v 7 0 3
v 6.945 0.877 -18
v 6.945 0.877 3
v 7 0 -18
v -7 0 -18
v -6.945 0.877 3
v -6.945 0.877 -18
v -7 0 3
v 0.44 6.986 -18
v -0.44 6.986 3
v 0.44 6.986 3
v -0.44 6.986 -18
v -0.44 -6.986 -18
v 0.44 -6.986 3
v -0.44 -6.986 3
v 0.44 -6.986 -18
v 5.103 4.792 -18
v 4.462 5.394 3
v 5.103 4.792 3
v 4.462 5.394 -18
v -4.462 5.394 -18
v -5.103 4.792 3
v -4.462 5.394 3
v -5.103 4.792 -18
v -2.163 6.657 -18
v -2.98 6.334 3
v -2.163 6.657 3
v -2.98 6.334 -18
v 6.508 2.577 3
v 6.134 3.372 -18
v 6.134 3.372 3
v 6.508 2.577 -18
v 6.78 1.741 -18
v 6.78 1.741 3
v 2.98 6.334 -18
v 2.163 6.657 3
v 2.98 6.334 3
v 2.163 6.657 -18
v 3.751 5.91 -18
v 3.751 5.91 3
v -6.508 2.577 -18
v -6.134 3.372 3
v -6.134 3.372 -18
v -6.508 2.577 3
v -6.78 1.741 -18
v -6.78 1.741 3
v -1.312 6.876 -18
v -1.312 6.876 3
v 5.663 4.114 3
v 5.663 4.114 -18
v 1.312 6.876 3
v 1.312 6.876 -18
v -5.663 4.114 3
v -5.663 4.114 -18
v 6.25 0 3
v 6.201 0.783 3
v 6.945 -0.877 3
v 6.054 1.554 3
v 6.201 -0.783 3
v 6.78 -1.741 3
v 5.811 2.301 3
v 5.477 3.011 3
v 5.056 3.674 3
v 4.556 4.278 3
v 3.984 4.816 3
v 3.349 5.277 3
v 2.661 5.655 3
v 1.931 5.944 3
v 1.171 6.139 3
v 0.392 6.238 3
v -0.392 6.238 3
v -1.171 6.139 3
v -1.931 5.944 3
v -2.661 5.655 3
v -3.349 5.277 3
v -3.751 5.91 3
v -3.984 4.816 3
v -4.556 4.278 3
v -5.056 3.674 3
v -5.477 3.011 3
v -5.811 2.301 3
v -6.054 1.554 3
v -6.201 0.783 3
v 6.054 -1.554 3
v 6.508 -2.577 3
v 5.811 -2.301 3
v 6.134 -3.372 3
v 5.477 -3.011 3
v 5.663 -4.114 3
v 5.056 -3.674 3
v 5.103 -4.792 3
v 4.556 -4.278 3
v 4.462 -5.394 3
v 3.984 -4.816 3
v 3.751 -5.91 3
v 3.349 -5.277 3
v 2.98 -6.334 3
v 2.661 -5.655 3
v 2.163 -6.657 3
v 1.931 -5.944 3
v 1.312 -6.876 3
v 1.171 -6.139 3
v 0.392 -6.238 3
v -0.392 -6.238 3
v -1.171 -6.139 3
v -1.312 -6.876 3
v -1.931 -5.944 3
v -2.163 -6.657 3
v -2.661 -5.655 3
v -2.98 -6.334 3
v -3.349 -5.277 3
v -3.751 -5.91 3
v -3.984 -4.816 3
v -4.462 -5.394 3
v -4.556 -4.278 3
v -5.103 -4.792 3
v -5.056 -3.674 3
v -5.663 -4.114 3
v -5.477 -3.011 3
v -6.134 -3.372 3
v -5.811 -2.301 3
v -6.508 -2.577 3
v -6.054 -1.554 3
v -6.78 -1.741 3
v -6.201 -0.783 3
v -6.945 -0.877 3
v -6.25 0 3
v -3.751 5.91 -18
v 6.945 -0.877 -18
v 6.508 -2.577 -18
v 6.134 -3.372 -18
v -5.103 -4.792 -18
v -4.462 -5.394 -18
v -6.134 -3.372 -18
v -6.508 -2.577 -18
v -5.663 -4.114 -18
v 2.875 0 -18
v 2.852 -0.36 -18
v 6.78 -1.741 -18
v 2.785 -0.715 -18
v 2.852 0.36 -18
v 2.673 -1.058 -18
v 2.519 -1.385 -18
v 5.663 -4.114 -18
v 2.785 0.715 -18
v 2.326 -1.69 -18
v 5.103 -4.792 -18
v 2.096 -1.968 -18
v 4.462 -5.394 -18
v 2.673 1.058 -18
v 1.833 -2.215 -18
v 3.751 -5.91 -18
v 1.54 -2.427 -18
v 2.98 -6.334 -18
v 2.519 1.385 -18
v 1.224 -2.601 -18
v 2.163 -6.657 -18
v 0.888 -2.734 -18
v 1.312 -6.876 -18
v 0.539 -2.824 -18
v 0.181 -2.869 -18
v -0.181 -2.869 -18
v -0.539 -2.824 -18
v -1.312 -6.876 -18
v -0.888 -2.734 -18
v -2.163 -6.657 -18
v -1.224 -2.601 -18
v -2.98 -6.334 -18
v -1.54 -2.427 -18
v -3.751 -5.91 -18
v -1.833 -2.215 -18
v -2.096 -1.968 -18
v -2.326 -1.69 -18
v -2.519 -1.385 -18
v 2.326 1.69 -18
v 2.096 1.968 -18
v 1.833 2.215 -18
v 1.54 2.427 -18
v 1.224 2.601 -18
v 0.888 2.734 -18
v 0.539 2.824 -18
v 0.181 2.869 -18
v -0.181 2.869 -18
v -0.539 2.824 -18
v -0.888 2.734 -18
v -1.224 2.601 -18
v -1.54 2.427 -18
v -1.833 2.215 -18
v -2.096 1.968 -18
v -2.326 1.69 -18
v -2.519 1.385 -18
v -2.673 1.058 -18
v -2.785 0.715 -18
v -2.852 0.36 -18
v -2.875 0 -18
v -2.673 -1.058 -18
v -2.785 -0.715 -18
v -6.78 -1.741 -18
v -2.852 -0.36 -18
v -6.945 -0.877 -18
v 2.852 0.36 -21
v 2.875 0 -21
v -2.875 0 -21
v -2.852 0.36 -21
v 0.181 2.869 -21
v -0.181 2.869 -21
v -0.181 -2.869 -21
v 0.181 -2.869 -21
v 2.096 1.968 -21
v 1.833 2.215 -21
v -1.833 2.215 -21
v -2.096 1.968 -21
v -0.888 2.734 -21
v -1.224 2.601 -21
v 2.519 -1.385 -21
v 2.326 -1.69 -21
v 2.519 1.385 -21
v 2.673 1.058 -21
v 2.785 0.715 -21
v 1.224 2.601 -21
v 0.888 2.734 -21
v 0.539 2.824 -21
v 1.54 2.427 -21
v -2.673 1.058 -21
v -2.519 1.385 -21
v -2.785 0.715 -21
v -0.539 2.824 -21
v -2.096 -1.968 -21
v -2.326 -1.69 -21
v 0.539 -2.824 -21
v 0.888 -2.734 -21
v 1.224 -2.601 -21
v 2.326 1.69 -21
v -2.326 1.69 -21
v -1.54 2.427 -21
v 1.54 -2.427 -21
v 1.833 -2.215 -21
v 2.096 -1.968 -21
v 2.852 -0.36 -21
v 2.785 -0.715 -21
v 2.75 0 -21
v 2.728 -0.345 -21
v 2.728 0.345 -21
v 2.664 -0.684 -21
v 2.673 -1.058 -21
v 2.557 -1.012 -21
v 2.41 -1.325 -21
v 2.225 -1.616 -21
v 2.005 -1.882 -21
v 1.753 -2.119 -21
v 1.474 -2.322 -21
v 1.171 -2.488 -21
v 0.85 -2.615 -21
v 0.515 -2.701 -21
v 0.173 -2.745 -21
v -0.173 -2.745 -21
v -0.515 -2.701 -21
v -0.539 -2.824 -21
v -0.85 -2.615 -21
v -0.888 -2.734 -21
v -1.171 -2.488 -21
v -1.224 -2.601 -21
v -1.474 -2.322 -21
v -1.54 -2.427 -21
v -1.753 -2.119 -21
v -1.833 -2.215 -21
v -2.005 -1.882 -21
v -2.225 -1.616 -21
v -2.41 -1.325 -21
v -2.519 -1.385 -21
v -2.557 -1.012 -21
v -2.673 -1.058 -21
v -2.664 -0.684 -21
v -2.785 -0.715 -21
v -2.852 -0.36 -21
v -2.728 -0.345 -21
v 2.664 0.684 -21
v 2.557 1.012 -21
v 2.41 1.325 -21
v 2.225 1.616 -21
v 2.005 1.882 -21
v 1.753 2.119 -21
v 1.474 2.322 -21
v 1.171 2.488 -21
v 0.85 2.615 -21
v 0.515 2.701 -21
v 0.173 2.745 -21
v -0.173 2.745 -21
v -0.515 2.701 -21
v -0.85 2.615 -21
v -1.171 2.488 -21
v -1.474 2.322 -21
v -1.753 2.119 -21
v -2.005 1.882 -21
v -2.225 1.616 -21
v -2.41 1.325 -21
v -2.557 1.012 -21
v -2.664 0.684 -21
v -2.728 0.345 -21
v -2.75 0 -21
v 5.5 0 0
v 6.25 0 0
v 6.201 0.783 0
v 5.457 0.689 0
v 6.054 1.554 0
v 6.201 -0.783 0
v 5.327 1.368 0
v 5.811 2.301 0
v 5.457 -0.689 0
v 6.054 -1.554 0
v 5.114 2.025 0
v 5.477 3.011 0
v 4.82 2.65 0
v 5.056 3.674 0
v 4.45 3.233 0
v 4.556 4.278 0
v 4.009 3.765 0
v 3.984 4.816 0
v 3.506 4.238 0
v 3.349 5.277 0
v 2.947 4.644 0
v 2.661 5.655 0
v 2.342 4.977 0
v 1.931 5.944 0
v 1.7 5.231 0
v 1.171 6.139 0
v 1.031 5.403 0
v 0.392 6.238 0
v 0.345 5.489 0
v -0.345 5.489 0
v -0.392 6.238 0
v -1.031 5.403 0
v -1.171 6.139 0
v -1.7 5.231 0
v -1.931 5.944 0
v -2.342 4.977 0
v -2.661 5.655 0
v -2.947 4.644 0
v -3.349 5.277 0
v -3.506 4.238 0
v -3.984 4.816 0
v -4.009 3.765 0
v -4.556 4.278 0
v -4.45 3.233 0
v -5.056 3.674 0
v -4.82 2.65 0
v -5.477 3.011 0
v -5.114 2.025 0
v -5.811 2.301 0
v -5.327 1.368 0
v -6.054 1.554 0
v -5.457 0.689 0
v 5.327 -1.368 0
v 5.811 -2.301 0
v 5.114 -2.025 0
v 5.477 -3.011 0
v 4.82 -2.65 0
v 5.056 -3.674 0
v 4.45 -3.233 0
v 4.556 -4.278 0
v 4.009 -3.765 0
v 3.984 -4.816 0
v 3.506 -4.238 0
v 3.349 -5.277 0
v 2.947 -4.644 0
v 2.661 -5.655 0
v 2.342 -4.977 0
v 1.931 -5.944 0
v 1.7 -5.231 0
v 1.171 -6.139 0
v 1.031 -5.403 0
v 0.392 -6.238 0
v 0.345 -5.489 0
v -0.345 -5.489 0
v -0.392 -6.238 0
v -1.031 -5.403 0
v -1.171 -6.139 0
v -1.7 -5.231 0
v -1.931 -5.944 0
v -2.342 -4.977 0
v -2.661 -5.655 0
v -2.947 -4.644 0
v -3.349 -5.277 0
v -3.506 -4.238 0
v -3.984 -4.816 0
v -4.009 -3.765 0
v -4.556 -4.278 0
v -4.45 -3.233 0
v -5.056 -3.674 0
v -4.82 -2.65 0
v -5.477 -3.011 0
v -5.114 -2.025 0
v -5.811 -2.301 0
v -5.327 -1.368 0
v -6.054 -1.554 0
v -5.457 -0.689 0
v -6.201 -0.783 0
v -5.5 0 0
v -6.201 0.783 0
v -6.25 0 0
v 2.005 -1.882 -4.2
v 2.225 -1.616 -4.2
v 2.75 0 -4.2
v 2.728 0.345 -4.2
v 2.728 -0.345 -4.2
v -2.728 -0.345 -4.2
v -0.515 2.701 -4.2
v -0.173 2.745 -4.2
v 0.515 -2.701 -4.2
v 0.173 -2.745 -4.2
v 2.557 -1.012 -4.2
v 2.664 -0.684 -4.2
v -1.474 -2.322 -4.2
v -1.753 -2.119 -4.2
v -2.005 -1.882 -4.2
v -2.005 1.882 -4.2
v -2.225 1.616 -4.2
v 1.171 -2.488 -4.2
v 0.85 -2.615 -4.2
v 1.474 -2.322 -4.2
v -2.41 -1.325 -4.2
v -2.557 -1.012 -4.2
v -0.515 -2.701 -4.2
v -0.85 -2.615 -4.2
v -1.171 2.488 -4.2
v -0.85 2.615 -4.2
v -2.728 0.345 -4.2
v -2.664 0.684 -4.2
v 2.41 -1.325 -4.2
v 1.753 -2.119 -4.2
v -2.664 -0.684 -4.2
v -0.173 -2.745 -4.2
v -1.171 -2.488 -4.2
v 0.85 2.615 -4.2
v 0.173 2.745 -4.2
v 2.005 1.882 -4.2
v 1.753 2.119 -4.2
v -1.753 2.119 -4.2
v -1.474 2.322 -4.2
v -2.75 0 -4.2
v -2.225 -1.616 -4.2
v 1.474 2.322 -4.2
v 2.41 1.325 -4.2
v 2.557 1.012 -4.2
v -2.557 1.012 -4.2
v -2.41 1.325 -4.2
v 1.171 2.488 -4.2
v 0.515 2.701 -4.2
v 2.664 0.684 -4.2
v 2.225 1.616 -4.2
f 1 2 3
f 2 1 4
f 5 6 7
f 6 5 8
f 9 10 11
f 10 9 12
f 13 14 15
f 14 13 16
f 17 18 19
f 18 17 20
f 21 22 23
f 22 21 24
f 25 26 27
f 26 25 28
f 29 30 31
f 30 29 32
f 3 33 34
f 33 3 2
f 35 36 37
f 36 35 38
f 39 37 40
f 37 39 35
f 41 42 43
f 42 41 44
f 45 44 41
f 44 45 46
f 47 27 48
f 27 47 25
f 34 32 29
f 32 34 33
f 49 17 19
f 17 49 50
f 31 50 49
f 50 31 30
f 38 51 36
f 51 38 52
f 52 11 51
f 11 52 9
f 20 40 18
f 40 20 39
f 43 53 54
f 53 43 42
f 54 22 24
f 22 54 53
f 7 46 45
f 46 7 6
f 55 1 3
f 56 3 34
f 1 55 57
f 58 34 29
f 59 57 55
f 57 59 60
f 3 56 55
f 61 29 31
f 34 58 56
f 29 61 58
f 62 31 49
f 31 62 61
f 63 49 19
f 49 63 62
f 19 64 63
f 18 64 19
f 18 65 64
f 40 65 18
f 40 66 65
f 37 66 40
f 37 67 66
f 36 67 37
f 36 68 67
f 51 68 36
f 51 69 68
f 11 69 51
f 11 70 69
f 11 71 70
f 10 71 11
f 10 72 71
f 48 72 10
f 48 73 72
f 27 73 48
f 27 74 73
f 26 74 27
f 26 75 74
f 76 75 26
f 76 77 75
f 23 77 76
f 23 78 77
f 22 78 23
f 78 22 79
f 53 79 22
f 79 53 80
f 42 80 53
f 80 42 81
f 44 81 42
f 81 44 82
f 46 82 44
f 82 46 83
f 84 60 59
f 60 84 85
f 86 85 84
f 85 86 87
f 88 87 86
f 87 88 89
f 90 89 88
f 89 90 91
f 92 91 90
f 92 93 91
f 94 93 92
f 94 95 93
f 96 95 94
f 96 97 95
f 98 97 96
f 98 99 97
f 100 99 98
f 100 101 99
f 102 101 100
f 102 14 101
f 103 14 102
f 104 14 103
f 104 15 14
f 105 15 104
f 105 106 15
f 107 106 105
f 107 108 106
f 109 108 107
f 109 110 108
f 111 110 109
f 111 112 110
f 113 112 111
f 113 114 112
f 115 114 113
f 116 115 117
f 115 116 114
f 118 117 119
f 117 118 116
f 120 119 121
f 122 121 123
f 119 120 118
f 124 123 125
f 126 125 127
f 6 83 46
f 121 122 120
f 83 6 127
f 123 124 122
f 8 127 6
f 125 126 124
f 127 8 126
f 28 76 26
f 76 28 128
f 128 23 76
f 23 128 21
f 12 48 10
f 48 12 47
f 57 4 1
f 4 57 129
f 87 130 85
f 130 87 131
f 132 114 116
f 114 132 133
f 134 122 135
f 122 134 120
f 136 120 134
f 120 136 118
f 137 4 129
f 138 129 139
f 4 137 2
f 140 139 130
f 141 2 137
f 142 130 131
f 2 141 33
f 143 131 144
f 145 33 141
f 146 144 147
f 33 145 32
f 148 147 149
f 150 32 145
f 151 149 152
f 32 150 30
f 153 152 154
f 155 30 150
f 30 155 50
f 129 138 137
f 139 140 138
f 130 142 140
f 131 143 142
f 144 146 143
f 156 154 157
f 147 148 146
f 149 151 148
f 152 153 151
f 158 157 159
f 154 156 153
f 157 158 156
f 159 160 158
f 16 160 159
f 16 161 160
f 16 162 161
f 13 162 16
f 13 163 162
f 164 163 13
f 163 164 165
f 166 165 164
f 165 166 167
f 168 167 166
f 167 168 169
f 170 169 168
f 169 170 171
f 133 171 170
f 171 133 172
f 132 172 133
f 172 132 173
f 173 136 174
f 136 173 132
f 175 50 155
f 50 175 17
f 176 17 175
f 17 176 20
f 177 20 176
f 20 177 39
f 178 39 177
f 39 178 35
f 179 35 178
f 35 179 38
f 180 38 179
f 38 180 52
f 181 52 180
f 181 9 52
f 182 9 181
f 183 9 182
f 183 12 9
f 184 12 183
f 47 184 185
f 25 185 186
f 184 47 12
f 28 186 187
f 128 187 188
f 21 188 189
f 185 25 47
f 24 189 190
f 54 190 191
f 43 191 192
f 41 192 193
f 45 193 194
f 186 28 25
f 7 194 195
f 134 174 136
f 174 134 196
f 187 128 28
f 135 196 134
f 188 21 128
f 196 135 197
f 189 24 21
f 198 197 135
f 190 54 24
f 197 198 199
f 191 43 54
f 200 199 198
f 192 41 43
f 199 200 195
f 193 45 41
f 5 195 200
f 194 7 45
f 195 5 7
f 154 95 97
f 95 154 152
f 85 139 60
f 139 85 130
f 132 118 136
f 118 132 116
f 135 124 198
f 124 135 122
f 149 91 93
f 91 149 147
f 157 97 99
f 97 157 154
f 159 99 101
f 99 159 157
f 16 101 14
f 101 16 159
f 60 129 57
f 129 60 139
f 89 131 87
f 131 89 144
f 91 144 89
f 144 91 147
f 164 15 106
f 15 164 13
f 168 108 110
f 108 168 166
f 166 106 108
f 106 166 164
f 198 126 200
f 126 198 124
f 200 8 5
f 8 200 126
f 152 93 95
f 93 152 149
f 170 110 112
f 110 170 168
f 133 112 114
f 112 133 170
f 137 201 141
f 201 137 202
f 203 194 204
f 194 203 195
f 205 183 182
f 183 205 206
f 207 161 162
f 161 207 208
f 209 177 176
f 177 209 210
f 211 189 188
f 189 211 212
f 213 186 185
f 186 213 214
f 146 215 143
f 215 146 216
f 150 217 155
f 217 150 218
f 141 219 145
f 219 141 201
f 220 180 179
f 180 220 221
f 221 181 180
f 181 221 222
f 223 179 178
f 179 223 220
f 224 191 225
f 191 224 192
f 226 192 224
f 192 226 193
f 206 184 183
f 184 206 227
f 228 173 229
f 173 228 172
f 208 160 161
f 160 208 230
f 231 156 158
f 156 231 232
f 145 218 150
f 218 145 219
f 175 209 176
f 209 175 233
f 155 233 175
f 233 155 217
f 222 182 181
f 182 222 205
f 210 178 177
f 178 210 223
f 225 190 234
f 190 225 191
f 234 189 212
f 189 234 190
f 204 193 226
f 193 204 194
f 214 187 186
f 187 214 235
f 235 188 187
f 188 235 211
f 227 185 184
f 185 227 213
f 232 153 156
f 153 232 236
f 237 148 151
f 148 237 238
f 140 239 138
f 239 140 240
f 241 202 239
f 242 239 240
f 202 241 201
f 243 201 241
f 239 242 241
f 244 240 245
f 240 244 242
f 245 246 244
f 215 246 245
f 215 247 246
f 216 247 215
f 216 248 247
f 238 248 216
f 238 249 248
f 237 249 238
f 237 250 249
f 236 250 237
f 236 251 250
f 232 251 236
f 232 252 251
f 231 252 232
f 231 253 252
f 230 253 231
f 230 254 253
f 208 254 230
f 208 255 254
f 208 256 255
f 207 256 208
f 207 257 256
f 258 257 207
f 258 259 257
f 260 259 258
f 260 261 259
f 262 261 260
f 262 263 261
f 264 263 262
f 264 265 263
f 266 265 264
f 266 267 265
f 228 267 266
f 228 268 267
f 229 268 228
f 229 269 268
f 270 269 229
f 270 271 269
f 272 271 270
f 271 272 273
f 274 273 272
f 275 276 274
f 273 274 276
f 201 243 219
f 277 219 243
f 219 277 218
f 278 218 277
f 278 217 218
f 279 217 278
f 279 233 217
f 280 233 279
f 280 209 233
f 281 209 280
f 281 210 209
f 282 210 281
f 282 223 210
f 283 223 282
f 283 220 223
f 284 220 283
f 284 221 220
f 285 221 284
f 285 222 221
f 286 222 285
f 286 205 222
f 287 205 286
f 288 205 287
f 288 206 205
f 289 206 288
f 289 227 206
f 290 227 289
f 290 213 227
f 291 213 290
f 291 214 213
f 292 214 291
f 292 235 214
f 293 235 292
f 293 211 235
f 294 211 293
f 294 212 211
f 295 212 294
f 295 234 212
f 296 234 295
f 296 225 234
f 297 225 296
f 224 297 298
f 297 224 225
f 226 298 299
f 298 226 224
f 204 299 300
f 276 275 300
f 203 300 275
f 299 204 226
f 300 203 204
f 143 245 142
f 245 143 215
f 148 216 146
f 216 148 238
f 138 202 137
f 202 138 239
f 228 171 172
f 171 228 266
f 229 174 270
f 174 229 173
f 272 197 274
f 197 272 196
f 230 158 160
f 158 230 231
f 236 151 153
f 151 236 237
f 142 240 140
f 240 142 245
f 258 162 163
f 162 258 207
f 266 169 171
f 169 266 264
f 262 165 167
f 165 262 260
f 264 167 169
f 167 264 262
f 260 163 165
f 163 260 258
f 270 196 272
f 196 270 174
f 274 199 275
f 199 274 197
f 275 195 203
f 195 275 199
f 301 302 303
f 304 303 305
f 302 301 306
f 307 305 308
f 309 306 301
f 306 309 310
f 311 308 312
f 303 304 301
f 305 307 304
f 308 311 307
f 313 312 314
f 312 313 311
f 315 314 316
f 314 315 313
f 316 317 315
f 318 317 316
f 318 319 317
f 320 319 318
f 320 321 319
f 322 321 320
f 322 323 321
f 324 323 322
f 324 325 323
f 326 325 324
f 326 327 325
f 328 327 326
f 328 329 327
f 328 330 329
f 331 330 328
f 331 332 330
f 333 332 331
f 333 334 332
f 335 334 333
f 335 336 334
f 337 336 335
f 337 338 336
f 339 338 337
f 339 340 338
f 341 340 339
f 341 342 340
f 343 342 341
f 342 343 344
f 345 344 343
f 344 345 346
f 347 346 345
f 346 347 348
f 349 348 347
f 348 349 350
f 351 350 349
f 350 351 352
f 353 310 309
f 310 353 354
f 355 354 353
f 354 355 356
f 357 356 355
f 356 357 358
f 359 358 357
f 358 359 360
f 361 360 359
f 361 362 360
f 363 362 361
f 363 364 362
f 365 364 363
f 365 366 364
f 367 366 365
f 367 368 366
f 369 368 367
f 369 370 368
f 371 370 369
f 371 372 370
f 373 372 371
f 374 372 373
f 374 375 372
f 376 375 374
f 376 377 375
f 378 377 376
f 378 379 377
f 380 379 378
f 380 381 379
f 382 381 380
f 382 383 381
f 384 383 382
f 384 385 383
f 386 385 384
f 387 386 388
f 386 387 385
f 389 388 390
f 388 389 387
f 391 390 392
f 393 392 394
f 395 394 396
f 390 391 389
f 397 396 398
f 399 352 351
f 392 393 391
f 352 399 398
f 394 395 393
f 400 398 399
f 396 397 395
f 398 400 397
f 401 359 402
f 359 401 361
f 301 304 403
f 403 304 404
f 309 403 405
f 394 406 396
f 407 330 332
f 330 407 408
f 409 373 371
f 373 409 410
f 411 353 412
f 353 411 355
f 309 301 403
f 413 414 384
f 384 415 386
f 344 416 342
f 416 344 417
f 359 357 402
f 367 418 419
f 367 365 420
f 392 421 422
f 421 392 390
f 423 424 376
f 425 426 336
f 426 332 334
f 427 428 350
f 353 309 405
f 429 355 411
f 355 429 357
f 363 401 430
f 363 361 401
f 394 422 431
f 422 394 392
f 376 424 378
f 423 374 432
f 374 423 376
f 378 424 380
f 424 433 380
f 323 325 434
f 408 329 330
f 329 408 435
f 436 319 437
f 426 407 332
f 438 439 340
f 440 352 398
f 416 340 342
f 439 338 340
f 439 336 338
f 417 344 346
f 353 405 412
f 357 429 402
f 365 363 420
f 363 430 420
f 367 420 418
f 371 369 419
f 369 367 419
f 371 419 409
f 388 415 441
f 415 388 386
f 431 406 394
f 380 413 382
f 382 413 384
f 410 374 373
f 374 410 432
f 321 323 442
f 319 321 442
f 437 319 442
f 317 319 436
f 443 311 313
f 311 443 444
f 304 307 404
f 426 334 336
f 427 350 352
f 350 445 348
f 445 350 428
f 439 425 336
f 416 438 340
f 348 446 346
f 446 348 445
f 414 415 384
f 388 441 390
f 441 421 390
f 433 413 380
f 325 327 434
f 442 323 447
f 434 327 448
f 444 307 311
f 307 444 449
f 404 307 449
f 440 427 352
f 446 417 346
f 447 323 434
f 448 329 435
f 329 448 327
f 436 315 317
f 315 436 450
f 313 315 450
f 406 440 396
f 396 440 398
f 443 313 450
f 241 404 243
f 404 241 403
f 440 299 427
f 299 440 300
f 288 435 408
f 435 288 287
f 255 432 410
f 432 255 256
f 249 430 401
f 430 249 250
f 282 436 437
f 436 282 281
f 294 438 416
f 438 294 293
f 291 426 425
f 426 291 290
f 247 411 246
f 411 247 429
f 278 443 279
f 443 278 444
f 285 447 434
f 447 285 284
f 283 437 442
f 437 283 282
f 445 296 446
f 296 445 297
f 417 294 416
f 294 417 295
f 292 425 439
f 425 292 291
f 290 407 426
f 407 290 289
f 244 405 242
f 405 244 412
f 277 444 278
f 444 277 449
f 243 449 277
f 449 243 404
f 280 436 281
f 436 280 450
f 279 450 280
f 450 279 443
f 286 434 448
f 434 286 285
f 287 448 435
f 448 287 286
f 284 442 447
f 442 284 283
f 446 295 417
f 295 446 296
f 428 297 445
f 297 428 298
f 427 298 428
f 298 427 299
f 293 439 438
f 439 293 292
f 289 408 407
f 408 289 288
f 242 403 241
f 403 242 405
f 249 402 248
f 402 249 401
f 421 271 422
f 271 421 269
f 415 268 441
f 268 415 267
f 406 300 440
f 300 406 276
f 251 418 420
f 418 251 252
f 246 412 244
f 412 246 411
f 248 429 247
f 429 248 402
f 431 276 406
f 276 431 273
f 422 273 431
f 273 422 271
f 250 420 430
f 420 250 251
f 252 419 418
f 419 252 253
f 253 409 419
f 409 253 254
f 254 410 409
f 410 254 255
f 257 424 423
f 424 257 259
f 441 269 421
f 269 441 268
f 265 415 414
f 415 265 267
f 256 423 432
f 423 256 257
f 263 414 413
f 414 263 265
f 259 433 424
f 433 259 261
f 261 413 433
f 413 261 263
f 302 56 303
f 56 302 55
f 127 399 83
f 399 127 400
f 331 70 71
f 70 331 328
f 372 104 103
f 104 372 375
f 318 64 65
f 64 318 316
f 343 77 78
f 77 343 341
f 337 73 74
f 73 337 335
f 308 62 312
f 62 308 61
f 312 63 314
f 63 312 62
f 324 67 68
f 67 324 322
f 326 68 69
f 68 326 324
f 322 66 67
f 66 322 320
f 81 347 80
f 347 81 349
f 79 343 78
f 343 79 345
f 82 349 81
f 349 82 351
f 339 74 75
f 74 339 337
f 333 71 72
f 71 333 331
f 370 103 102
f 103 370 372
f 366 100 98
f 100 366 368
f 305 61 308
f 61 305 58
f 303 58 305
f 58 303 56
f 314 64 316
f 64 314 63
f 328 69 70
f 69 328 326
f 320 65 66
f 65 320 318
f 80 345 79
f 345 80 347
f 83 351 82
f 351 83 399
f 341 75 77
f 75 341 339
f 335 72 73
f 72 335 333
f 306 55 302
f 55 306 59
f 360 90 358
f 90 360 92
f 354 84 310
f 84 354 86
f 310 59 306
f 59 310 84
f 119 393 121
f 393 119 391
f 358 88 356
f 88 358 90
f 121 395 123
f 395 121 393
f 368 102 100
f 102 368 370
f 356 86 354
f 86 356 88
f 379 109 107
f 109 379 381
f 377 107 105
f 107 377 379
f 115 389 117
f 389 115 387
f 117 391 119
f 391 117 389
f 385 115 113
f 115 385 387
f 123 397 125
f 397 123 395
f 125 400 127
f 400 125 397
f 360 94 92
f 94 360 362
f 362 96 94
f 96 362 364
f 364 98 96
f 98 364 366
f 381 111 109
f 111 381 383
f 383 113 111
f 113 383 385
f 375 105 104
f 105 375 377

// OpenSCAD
$fn = 50;


difference() {
	union() {
		translate(v = [0, 0, -18.0000000000]) {
			cylinder(h = 21, r = 7.0000000000);
		}
		#translate(v = [0, 0, -21.0000000000]) {
			cylinder(h = 21, r = 2.8750000000);
		}
	}
	union() {
		translate(v = [0, 0, 0]) {
			rotate(a = [0, 0, 0]) {
				difference() {
					union() {
						translate(v = [0, 0, -21.0000000000]) {
							cylinder(h = 21, r = 2.2500000000);
						}
						translate(v = [0, 0, -4.2000000000]) {
							cylinder(h = 4.2000000000, r1 = 2.7500000000, r2 = 5.5000000000);
						}
						translate(v = [0, 0, -21.0000000000]) {
							cylinder(h = 21, r = 2.7500000000);
						}
						translate(v = [0, 0, -21.0000000000]) {
							cylinder(h = 21, r = 2.2500000000);
						}
					}
					union();
				}
			}
		}
		#cylinder(h = 3, r = 6.2500000000);
	}
}
